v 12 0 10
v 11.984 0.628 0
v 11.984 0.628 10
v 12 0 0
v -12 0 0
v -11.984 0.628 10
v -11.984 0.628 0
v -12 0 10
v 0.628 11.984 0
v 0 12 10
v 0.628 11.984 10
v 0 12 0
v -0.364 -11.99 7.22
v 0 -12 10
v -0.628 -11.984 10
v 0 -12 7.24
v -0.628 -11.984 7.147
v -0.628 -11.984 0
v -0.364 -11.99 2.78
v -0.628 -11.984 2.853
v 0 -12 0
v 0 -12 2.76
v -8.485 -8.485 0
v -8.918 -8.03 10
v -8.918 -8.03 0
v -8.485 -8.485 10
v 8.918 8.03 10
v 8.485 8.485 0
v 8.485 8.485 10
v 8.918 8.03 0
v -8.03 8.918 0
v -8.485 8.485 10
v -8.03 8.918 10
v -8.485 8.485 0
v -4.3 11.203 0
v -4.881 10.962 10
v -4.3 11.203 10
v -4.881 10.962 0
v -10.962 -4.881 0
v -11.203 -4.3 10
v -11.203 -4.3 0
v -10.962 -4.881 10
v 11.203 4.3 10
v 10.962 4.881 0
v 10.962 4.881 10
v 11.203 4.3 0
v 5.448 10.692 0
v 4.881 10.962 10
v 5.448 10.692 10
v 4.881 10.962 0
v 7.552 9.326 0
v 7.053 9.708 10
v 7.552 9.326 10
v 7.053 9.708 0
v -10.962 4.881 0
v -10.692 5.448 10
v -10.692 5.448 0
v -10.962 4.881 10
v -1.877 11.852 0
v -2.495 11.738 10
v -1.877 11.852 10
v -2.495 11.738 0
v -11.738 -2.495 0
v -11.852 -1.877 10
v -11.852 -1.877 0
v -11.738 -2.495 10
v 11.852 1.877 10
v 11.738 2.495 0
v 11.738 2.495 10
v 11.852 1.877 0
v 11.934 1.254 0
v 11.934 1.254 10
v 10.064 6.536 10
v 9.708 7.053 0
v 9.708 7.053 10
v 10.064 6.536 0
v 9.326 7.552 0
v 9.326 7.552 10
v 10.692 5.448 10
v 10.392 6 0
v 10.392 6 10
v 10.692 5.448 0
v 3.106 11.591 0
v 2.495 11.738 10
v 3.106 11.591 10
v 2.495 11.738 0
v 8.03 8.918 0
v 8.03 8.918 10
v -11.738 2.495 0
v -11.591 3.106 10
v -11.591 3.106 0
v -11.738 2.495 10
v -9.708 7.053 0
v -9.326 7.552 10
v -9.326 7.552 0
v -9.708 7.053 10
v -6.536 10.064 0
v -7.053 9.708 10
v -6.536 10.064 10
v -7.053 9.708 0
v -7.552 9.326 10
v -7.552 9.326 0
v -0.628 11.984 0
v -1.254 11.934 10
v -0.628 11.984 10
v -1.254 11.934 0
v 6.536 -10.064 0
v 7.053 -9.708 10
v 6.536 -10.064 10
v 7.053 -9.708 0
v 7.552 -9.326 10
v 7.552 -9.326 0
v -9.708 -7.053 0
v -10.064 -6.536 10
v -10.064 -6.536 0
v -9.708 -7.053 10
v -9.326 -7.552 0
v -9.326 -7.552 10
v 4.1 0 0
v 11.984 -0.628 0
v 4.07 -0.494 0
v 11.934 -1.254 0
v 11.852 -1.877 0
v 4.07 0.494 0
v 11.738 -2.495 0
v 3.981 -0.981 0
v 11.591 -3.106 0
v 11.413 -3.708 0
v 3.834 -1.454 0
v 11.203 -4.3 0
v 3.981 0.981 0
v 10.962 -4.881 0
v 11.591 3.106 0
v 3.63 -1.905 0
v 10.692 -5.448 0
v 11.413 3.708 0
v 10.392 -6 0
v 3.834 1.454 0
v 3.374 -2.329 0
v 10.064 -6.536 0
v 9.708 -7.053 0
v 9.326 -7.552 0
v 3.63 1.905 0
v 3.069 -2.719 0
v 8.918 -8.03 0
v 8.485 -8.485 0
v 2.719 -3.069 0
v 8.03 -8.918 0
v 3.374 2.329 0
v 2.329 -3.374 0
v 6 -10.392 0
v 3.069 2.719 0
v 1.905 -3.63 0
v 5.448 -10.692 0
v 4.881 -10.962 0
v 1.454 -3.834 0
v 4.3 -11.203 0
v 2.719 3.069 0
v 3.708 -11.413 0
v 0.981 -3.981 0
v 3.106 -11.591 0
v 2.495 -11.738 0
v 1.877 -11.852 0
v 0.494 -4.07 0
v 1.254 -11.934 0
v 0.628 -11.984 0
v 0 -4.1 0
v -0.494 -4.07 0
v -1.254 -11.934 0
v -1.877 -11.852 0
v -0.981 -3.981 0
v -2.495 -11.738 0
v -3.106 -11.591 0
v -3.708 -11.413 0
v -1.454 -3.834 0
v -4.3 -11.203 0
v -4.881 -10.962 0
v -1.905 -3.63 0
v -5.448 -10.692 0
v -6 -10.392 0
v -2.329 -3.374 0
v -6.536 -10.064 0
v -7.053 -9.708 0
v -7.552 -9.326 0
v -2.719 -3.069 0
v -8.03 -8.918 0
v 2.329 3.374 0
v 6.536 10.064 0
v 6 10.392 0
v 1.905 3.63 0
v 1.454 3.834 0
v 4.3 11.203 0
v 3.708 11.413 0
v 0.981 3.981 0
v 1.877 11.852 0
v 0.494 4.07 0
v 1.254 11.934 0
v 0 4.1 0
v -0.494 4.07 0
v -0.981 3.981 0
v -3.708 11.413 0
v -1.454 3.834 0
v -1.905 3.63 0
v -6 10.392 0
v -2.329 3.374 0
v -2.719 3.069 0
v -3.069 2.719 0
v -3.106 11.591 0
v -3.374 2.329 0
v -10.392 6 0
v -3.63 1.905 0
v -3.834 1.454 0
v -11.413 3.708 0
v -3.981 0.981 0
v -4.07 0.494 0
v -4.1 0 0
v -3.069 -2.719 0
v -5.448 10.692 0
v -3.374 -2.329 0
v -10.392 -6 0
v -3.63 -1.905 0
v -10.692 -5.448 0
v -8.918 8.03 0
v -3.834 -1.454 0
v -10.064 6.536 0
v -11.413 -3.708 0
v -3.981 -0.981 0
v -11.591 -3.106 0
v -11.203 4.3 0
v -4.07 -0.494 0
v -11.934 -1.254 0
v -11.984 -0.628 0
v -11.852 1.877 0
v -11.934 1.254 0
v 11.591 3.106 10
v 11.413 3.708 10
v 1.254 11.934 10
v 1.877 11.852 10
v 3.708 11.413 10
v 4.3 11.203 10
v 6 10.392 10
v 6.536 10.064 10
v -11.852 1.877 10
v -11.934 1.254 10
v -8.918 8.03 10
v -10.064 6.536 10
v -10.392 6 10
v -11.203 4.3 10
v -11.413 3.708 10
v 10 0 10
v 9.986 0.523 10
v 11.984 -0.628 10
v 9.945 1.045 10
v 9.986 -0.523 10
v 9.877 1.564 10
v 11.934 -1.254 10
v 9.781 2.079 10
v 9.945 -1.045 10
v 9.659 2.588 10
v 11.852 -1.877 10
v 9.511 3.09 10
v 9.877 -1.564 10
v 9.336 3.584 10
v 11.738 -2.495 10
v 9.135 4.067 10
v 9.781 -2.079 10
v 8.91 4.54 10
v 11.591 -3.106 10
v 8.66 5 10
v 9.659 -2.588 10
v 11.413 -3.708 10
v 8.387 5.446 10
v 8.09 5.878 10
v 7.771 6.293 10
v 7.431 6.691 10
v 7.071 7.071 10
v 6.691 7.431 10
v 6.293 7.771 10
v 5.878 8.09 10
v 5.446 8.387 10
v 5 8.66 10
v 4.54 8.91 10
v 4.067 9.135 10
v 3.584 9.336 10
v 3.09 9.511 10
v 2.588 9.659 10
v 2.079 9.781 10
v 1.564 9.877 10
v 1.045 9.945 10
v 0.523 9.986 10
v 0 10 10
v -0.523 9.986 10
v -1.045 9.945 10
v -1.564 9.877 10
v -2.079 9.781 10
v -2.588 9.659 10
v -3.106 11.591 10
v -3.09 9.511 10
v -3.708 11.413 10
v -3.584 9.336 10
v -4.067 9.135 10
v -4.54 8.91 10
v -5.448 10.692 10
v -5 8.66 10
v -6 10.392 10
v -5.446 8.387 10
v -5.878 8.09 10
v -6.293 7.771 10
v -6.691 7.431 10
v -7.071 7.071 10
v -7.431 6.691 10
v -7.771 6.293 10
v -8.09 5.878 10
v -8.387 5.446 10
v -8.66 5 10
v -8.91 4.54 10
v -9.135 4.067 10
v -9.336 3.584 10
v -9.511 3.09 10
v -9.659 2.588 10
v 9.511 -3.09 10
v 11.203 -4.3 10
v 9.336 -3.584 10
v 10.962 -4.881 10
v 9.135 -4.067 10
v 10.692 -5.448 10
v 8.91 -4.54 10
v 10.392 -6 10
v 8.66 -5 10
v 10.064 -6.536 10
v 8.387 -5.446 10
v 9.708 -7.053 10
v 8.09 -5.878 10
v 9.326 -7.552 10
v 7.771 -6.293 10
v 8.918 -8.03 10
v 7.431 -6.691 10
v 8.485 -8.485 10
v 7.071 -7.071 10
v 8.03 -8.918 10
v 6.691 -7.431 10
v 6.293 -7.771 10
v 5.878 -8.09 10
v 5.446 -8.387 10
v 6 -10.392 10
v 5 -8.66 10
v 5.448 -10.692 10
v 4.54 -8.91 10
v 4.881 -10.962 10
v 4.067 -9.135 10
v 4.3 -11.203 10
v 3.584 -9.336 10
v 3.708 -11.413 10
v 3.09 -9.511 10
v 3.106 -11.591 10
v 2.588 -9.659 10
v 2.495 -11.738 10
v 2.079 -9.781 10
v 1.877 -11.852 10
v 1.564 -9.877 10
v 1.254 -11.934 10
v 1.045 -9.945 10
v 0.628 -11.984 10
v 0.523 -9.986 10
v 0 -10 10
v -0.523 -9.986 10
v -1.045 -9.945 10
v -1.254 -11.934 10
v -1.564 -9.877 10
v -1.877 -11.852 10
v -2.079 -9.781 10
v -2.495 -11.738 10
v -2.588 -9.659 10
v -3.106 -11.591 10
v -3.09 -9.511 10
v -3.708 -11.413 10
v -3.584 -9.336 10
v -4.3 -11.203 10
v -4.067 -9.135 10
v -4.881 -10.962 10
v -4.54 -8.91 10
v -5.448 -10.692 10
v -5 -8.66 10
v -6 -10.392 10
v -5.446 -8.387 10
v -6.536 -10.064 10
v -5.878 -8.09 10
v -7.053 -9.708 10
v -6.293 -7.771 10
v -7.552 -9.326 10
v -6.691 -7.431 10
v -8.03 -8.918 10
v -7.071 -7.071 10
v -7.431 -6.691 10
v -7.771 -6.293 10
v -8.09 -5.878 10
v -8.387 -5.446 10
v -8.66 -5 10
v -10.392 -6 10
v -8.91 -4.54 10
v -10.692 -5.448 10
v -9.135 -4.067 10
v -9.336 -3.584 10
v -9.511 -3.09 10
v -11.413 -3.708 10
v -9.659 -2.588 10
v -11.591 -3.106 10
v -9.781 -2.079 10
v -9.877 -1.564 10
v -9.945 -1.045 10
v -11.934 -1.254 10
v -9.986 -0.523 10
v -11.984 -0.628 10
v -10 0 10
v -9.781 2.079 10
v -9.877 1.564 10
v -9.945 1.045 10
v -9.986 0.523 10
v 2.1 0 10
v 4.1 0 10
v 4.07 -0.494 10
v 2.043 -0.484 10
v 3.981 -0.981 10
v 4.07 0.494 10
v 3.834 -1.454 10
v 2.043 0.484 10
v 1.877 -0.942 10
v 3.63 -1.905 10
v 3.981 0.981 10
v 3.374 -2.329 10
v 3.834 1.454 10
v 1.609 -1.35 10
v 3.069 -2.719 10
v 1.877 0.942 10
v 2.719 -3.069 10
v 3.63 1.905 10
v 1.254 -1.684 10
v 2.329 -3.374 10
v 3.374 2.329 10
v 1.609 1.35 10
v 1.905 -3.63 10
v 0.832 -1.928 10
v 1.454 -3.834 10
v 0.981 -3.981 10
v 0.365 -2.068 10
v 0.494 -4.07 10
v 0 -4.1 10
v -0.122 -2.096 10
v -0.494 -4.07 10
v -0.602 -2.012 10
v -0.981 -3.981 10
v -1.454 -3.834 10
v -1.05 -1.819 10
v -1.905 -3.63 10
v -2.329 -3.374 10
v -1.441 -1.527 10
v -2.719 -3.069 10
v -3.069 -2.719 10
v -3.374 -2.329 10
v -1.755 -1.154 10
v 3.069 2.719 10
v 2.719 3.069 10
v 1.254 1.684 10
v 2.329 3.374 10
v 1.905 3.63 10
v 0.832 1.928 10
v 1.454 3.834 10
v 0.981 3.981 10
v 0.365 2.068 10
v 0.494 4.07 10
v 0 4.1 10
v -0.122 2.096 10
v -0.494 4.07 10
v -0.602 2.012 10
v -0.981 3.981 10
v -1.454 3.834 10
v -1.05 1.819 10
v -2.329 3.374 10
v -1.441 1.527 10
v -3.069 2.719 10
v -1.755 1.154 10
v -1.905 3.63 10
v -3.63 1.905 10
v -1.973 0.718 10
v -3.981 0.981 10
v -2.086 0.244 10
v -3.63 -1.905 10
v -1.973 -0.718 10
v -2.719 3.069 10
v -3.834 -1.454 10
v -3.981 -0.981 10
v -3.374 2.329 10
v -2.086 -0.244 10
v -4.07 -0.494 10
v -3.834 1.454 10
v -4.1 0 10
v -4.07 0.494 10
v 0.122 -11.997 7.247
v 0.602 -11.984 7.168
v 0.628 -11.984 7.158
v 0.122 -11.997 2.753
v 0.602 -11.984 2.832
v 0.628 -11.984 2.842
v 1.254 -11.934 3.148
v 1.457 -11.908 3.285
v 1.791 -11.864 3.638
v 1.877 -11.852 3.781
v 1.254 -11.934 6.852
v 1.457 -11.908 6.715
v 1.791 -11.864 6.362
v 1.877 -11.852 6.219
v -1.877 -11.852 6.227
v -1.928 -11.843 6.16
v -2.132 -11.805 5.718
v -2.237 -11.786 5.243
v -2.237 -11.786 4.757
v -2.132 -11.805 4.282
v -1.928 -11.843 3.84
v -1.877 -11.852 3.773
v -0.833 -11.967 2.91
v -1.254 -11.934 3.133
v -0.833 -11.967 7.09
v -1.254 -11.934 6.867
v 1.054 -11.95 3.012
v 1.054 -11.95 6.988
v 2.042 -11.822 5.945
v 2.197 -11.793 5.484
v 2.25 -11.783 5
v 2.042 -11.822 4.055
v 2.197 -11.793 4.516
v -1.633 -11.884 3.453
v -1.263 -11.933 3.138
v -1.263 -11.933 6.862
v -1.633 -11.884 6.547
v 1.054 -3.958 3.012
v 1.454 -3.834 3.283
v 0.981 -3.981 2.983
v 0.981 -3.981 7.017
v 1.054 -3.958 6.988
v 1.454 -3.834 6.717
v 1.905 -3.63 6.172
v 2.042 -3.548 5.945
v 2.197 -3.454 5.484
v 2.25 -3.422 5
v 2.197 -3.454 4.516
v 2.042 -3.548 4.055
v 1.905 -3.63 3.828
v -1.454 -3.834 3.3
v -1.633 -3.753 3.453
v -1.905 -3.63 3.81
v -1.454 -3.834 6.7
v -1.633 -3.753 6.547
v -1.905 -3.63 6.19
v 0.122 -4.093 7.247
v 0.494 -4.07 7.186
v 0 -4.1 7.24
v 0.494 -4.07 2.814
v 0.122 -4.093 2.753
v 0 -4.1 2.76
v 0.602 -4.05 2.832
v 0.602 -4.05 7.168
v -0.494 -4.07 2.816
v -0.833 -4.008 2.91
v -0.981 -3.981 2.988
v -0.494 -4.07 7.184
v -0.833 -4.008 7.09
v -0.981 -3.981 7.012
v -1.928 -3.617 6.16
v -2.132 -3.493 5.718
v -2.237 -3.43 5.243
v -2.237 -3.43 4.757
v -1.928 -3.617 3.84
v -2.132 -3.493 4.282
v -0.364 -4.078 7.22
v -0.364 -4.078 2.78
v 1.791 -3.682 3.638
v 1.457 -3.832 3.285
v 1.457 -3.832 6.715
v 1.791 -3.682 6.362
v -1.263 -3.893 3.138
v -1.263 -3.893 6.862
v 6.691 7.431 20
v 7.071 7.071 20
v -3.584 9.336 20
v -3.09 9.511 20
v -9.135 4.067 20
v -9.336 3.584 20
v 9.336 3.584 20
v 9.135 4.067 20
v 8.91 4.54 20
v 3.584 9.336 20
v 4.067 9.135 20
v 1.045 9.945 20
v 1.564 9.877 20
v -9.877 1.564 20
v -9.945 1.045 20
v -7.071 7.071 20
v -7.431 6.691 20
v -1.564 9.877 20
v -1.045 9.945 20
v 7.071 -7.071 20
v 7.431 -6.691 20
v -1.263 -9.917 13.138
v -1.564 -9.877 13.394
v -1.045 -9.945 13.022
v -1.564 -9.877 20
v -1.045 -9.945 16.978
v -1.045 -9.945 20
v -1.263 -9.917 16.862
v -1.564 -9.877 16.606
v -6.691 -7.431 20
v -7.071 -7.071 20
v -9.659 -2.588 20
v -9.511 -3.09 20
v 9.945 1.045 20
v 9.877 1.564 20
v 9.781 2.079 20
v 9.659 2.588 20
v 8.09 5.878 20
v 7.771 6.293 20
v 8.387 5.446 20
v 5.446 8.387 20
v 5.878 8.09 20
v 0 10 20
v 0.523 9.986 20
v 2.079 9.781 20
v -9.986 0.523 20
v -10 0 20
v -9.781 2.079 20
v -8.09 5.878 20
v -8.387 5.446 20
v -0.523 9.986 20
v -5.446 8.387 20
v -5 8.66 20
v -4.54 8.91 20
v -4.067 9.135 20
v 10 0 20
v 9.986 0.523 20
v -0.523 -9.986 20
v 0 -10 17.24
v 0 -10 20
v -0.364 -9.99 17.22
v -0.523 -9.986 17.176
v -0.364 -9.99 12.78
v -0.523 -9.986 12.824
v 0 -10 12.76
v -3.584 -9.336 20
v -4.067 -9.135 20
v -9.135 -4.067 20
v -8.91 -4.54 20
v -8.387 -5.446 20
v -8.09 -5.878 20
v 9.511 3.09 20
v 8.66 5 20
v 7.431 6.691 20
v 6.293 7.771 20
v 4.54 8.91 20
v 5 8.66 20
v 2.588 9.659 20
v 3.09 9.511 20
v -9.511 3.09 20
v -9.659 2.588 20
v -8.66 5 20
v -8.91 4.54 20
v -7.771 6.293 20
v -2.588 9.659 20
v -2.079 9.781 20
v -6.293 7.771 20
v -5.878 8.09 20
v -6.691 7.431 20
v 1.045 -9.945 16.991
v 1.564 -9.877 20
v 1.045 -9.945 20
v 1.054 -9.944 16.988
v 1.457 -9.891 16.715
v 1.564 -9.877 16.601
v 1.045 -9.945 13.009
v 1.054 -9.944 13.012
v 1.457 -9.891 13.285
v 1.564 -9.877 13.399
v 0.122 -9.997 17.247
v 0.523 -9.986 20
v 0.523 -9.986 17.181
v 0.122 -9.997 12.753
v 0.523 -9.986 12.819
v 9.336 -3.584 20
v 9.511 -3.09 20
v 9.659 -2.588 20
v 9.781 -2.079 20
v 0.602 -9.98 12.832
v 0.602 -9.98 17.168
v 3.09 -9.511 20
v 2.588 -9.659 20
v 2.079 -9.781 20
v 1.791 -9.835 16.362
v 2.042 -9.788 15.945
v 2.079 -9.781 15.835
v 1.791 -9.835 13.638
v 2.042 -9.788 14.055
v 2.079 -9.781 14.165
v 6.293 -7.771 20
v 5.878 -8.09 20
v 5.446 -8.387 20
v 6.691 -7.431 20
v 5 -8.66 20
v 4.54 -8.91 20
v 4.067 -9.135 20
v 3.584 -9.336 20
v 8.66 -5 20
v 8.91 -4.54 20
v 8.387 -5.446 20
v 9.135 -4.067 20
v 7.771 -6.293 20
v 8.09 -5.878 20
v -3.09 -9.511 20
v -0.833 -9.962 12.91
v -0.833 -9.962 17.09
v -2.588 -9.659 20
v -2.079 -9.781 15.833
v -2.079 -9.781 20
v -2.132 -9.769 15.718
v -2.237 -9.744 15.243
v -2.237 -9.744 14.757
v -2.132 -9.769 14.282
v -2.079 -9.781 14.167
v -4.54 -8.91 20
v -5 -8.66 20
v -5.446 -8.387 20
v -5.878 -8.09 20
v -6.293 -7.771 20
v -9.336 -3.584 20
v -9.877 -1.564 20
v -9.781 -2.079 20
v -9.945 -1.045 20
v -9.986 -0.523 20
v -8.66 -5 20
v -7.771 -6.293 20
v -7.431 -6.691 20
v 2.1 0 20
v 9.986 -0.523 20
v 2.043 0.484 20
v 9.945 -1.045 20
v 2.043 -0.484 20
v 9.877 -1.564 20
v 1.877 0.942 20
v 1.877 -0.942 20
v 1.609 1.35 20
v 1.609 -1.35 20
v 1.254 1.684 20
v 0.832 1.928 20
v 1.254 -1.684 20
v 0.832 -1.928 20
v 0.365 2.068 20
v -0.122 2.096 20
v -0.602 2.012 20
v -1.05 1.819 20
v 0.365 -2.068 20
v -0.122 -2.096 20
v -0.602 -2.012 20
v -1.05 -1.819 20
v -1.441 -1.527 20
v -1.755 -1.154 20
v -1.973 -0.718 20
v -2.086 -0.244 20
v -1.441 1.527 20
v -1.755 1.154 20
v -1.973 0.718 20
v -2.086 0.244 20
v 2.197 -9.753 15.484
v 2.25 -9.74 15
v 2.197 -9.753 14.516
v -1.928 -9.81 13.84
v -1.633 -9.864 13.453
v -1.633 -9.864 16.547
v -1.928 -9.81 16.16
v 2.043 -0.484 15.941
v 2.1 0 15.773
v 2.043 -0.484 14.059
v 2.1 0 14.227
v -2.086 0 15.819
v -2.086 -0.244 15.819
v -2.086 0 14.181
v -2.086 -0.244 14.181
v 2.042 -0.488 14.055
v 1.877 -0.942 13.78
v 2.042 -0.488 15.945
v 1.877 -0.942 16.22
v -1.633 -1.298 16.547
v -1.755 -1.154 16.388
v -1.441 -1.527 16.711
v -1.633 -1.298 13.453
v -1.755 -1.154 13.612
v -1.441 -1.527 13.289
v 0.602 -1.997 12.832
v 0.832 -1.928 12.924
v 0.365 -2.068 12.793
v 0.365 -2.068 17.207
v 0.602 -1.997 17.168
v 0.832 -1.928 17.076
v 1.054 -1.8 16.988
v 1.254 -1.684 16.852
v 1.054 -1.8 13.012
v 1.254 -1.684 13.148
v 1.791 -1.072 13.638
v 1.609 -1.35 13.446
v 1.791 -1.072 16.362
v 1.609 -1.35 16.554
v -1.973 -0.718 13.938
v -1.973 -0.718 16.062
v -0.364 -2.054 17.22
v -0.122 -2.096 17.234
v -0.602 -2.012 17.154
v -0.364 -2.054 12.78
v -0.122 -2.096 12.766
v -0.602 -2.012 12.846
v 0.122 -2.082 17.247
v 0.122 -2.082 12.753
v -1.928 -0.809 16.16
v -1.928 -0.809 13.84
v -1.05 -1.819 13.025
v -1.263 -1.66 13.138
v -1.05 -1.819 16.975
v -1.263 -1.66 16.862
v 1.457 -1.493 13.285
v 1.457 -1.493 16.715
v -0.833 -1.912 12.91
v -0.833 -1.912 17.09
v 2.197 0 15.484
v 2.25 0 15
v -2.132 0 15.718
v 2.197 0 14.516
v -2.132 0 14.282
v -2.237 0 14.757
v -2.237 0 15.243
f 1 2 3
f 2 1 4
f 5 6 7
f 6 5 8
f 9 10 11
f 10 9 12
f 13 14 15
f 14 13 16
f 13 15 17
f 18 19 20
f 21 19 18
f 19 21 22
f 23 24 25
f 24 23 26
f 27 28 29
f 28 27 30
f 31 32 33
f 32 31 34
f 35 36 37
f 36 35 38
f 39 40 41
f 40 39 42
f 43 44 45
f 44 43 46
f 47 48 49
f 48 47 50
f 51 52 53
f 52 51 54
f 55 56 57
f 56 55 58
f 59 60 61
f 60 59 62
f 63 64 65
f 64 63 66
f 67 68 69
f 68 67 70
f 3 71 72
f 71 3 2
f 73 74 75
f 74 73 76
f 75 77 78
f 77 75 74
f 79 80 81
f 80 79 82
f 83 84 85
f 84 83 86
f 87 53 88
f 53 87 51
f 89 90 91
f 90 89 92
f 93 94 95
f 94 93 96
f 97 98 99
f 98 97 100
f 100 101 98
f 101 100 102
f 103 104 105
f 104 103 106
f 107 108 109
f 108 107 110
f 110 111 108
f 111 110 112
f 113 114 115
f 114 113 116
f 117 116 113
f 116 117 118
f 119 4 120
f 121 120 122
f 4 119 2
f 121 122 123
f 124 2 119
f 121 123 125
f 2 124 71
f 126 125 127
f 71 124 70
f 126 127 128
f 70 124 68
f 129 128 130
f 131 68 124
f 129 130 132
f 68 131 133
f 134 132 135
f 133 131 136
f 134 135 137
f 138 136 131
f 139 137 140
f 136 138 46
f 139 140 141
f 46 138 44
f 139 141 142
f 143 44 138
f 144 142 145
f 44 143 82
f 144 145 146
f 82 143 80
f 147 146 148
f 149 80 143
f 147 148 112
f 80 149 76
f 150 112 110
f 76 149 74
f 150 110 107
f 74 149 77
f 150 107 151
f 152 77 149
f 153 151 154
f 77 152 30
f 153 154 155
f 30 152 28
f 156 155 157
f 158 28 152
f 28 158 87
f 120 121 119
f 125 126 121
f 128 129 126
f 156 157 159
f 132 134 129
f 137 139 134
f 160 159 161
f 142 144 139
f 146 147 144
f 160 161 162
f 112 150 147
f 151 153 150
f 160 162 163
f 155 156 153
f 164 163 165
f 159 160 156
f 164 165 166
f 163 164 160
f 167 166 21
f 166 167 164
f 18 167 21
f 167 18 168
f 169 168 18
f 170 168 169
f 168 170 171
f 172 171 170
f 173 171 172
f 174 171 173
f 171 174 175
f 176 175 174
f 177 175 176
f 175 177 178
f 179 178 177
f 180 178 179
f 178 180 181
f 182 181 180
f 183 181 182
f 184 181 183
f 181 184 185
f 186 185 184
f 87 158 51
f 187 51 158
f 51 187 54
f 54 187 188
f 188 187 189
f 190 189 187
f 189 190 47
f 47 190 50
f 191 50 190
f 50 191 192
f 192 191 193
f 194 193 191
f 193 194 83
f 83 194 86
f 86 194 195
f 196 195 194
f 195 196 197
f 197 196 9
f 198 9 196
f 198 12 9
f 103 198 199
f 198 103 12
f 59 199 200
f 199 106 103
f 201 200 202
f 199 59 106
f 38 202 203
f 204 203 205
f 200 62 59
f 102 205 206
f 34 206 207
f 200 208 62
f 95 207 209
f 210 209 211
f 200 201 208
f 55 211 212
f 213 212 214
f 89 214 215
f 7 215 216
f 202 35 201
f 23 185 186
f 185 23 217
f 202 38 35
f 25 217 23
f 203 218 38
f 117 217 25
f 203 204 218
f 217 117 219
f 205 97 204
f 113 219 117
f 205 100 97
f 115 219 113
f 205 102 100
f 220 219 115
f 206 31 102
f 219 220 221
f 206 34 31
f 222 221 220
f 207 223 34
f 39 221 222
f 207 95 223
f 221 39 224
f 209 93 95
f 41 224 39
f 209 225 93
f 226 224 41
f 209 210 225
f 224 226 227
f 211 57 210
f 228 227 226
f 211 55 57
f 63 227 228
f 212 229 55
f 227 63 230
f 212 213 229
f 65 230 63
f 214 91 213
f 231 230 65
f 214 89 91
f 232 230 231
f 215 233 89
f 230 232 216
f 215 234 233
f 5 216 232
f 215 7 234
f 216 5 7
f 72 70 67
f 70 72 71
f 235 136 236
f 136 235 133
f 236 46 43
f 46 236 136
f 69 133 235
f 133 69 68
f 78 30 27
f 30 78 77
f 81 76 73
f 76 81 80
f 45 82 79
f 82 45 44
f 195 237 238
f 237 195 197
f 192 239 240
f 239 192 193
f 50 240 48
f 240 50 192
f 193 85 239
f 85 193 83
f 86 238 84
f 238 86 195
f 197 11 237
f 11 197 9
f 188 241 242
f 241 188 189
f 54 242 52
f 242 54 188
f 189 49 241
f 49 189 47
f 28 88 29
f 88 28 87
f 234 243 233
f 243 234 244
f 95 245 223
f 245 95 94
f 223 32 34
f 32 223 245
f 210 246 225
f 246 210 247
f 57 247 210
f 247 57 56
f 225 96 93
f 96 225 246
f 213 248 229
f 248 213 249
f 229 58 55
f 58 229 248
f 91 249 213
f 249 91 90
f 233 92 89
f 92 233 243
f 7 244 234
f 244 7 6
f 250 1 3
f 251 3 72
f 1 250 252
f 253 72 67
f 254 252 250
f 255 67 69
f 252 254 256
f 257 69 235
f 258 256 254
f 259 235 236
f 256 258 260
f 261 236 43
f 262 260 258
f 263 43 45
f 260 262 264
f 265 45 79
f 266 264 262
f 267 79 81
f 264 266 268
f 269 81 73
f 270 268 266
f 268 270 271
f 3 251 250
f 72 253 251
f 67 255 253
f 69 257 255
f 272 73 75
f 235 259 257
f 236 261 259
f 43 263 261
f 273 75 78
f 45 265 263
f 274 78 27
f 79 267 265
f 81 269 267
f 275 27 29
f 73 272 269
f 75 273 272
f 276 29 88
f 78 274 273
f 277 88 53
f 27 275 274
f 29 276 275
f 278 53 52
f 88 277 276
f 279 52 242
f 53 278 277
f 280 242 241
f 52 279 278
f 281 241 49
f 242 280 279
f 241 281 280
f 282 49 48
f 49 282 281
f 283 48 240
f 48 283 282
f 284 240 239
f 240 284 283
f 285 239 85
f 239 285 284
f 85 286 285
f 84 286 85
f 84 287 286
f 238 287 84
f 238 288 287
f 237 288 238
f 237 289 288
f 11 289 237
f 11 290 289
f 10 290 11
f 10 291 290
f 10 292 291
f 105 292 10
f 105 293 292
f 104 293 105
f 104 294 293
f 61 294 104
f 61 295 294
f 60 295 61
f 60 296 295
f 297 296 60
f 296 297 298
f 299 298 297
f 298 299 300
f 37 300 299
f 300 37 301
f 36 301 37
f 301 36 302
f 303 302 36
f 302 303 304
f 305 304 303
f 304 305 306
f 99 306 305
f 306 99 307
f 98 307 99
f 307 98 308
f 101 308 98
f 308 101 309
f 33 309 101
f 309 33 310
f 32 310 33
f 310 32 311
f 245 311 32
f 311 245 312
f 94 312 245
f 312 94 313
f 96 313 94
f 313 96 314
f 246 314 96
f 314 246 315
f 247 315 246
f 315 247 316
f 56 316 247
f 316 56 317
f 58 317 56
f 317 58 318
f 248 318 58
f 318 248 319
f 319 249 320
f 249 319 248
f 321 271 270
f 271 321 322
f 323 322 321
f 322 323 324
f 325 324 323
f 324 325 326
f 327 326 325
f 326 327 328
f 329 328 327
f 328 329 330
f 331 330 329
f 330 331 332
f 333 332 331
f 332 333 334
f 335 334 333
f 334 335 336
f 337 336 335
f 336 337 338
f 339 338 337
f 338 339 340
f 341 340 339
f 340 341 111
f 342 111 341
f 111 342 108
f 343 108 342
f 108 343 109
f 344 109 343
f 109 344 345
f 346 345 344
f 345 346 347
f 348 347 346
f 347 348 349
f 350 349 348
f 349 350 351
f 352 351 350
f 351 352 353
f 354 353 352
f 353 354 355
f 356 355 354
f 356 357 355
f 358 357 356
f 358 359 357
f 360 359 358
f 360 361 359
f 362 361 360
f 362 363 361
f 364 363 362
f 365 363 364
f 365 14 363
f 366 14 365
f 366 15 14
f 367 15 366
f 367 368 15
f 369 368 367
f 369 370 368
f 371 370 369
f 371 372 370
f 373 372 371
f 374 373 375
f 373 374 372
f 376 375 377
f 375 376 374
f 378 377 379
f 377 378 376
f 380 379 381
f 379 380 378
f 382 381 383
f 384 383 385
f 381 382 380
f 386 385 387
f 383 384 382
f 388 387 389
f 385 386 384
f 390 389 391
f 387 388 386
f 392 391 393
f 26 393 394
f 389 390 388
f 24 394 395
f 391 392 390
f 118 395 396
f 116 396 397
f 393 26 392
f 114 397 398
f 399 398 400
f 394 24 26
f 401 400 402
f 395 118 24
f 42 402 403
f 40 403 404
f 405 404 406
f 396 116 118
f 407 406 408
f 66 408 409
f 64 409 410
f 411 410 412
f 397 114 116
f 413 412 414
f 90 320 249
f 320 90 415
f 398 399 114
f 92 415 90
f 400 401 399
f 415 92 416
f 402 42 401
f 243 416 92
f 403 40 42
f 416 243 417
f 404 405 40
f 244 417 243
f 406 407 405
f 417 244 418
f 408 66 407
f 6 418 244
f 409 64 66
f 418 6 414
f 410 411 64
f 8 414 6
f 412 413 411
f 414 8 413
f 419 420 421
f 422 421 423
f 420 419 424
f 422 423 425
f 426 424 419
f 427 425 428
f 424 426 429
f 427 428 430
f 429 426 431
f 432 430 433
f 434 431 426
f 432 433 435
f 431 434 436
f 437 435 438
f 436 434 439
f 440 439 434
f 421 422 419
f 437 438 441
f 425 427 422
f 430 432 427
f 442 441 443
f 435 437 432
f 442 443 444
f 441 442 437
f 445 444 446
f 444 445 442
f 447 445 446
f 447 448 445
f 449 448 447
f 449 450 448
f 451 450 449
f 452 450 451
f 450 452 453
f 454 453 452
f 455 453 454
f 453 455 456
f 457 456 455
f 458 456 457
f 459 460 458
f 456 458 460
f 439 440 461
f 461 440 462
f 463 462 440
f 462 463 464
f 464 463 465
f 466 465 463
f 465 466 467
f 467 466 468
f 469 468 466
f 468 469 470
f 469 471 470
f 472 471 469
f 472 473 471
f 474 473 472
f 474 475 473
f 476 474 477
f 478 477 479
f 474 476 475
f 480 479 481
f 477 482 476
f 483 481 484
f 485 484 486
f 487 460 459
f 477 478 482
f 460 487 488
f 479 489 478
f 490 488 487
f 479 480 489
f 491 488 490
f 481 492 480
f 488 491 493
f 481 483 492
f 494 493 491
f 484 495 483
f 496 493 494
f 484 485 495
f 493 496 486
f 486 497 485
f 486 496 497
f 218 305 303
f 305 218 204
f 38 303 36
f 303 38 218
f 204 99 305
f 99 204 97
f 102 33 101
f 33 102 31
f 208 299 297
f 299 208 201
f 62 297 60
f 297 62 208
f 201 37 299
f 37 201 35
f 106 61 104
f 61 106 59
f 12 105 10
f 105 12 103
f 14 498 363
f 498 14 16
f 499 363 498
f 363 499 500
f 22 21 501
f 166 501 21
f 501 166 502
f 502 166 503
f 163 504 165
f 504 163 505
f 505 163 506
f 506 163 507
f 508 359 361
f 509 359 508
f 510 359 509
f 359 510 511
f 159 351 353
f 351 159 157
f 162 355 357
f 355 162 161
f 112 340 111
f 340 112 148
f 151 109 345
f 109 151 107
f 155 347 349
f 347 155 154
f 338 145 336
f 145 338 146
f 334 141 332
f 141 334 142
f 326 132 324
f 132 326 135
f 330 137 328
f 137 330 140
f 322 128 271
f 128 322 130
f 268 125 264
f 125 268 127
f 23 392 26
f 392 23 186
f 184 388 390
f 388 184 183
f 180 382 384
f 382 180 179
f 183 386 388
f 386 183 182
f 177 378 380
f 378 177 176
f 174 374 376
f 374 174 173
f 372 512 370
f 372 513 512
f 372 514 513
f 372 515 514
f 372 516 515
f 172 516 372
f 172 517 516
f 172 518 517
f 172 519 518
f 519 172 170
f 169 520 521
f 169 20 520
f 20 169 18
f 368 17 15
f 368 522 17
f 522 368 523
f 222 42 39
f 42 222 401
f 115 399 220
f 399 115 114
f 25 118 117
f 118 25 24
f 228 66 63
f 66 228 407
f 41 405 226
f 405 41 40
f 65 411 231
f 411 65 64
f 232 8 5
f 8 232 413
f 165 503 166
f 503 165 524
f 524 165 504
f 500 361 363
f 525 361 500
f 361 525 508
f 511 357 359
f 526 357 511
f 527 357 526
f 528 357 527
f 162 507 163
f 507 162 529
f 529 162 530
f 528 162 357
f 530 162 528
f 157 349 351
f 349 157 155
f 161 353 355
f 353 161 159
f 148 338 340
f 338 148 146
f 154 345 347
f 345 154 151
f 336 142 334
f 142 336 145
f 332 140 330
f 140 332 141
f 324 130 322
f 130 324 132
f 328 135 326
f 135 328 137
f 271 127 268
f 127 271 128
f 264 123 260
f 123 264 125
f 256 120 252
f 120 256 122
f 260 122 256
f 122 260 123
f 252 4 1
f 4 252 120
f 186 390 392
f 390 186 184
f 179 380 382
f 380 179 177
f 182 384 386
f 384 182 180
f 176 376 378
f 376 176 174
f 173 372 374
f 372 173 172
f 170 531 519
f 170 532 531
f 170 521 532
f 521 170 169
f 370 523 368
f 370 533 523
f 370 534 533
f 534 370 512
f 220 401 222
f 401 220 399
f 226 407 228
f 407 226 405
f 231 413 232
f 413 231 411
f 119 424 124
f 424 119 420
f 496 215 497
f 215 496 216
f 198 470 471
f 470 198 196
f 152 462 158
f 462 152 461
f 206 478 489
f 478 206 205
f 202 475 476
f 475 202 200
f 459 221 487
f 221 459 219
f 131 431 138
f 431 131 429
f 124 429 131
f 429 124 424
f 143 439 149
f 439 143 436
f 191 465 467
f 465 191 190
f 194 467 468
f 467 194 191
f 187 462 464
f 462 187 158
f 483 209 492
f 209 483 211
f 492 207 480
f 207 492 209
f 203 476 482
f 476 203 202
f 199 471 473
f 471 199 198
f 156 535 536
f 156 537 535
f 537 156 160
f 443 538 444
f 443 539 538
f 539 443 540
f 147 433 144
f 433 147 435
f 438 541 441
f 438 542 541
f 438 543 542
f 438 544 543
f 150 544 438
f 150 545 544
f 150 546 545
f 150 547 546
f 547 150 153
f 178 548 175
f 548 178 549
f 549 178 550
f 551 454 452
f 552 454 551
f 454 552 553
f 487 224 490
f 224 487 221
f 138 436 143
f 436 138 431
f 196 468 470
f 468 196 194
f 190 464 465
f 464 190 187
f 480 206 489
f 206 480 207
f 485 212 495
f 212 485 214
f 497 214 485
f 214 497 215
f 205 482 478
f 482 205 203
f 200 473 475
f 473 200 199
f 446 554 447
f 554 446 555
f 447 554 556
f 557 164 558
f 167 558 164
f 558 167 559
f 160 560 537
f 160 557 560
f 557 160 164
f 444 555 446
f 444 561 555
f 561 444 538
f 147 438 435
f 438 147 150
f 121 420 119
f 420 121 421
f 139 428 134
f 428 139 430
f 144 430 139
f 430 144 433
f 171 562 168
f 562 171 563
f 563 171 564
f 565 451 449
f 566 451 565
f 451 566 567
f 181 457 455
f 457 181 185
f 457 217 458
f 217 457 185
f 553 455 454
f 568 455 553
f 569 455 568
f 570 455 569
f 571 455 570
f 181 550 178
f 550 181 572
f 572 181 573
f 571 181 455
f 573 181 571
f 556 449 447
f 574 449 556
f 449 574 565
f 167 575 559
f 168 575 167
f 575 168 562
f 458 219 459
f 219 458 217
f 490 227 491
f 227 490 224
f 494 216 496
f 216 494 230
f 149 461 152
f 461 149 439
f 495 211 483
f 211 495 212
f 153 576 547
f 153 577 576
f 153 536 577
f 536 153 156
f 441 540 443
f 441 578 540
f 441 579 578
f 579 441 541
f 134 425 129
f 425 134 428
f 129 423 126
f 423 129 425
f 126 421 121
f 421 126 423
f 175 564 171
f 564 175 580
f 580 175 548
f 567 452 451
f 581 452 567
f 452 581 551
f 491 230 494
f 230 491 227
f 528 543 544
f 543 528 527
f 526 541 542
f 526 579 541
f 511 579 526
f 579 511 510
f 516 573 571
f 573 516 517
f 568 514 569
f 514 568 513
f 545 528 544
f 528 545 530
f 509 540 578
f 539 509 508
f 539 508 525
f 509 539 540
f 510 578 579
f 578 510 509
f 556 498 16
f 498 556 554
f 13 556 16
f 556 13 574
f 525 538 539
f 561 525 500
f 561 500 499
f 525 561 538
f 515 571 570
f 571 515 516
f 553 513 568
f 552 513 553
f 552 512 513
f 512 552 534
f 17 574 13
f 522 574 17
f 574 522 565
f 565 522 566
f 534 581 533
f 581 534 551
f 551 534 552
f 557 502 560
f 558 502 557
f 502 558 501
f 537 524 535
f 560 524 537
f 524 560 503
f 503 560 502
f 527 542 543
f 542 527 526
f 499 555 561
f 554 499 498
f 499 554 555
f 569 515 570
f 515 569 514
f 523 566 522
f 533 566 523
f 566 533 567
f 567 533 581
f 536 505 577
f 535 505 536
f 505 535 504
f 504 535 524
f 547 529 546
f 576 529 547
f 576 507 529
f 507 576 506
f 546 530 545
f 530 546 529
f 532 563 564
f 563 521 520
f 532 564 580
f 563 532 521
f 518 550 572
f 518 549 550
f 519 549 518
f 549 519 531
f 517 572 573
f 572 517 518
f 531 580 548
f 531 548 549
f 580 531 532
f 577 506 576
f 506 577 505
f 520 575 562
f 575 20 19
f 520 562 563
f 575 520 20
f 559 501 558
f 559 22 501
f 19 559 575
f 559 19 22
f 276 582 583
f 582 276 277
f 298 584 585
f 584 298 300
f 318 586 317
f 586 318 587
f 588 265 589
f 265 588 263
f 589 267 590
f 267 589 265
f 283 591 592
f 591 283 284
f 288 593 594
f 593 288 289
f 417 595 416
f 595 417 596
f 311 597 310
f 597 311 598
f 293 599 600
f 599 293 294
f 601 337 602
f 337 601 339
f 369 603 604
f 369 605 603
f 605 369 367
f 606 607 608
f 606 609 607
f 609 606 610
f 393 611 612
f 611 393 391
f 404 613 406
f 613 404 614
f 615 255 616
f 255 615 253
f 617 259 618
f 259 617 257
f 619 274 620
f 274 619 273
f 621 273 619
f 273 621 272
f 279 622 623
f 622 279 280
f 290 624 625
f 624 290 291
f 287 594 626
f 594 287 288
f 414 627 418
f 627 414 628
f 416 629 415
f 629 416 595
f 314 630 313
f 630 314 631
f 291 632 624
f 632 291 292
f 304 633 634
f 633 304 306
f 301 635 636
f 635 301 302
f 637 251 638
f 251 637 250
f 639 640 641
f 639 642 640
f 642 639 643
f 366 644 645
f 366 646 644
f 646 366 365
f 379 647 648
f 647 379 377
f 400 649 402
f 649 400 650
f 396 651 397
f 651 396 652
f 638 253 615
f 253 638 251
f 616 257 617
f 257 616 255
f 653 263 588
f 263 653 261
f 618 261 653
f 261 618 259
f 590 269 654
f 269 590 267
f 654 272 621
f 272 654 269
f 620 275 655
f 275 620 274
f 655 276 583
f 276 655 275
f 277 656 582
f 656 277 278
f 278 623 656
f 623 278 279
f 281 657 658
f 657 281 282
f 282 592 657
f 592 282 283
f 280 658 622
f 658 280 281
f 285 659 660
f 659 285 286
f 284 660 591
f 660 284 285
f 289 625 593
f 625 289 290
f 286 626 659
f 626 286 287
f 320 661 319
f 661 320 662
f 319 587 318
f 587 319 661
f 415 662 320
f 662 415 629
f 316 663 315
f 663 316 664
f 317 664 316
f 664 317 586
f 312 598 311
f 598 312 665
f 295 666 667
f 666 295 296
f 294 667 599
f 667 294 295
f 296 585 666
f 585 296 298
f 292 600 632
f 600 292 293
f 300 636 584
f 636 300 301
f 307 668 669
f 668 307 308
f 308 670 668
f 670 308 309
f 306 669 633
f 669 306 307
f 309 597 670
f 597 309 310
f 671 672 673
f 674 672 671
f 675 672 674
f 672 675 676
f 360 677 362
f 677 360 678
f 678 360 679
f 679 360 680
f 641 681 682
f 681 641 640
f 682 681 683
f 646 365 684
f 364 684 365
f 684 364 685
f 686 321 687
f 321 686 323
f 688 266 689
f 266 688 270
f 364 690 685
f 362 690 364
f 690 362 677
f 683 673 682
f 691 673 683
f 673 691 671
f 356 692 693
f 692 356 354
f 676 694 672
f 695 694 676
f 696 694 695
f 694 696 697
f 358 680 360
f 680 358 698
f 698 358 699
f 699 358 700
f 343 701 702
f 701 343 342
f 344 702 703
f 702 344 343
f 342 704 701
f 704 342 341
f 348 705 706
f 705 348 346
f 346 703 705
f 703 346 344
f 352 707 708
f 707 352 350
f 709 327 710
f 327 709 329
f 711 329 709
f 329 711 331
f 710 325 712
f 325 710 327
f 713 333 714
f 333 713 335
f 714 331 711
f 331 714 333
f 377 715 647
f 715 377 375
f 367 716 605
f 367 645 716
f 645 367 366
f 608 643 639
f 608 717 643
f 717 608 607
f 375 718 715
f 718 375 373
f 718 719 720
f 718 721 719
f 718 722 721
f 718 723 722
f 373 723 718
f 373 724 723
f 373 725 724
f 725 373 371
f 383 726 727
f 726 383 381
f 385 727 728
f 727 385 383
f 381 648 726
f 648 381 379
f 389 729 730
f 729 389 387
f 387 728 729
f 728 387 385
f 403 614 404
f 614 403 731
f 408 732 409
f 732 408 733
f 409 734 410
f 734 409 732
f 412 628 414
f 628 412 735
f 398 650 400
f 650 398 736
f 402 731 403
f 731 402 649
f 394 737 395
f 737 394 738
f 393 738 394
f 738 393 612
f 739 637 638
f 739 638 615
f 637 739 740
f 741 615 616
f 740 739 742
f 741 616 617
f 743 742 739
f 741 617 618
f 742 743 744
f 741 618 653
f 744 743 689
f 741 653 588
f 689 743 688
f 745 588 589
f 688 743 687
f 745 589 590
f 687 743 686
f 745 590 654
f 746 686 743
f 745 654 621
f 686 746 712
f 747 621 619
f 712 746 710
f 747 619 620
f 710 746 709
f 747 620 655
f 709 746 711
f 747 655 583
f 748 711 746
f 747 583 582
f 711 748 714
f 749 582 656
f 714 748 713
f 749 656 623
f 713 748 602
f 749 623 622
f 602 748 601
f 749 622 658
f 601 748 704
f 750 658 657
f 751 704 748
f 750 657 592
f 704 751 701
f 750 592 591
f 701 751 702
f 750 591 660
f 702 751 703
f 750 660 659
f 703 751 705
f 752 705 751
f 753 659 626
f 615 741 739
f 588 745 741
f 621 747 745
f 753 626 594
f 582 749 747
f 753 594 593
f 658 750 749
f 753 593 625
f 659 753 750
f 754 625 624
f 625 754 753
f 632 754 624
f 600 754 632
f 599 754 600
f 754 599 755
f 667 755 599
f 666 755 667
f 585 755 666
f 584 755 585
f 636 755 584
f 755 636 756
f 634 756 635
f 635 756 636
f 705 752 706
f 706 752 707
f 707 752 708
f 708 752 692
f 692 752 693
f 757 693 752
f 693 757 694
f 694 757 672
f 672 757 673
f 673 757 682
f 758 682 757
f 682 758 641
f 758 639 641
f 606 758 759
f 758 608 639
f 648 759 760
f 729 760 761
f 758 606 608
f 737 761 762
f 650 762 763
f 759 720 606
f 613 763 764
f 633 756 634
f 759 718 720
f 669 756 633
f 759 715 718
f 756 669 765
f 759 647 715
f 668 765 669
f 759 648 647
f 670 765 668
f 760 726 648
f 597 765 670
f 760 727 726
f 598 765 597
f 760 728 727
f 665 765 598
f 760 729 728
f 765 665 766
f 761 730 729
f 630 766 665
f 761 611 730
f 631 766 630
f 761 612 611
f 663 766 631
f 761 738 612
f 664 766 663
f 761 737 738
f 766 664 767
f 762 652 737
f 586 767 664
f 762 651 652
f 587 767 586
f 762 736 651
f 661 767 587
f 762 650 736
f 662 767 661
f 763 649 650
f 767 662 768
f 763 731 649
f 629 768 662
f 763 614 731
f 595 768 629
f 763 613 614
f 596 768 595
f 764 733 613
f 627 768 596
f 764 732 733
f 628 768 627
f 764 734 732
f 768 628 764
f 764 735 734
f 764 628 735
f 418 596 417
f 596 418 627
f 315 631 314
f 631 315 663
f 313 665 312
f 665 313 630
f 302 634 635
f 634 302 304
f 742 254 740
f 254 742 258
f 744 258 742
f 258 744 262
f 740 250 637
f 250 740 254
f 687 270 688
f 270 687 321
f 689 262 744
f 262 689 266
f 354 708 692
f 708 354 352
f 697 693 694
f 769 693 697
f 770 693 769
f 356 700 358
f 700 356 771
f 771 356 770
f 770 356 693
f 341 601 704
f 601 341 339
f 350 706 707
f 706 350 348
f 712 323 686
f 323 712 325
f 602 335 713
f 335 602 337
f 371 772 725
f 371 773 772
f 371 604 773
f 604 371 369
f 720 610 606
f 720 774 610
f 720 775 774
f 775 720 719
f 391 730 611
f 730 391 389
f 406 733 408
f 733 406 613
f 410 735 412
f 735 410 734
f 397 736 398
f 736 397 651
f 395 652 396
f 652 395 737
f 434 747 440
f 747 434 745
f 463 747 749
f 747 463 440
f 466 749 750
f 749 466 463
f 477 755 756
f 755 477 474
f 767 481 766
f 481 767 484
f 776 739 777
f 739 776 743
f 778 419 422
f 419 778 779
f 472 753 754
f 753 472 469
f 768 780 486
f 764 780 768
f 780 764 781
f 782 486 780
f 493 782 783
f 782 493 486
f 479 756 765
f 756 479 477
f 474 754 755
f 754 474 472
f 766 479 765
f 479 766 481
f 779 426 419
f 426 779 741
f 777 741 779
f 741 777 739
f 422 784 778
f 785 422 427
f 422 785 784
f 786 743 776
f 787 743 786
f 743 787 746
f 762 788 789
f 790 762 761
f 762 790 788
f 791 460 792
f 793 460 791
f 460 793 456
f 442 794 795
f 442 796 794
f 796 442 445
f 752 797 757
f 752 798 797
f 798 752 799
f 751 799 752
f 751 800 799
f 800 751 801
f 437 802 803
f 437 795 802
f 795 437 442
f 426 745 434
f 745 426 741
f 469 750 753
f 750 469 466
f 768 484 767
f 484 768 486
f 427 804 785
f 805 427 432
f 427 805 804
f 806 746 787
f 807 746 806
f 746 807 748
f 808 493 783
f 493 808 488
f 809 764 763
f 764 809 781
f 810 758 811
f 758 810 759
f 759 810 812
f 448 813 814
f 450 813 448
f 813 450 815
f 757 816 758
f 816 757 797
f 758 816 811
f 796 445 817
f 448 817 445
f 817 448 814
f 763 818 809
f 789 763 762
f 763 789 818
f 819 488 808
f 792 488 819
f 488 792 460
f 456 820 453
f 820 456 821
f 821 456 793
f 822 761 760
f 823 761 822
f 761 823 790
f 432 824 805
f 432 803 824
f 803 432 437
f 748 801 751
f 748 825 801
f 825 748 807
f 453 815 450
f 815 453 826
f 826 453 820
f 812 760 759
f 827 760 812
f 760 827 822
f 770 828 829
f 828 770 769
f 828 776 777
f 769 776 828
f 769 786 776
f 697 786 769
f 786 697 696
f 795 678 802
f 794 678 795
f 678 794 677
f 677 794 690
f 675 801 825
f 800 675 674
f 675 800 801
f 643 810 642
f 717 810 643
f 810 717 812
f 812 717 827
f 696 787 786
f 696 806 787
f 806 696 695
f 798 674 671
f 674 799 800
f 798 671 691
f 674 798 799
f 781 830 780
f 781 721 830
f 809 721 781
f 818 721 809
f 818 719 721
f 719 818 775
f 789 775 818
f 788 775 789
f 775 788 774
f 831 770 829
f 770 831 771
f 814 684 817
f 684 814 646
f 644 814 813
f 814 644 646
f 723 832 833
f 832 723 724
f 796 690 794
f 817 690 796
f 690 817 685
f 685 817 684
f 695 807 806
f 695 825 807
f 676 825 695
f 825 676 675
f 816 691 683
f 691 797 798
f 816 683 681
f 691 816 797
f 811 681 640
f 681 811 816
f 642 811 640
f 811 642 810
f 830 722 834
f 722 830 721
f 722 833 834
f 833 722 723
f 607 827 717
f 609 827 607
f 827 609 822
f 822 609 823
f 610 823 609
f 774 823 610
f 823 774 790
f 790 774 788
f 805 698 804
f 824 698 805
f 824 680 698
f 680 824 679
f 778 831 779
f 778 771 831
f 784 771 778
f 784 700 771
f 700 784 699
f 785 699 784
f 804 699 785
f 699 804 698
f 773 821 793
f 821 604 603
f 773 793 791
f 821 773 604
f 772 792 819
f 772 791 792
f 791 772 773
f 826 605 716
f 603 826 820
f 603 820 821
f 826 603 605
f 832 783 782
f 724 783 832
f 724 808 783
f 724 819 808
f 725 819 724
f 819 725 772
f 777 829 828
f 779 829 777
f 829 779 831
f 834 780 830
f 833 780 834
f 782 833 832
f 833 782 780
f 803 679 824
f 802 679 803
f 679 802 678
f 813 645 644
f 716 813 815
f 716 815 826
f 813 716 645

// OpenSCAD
$fa = 3;
$fs = .5;
union() {
    difference() {
        cylinder(h = 10, r = 12);
        cylinder(h = 10, r = 4.1);
        translate([0, 0, 5]) {
            rotate([90, 0, 0]) {
                cylinder(h = 15, r = 2.25);
            }
        }
    }

    translate([0, 0, 10]) {
        difference() {
            cylinder(h = 10, r = 10);
            cylinder(h = 10, r = 2.1);
            translate([0, 0, 5]) {
                rotate([90, 0, 0]) {
                    cylinder(h = 15, r = 2.25);
                }
            }
        }
    }
}
